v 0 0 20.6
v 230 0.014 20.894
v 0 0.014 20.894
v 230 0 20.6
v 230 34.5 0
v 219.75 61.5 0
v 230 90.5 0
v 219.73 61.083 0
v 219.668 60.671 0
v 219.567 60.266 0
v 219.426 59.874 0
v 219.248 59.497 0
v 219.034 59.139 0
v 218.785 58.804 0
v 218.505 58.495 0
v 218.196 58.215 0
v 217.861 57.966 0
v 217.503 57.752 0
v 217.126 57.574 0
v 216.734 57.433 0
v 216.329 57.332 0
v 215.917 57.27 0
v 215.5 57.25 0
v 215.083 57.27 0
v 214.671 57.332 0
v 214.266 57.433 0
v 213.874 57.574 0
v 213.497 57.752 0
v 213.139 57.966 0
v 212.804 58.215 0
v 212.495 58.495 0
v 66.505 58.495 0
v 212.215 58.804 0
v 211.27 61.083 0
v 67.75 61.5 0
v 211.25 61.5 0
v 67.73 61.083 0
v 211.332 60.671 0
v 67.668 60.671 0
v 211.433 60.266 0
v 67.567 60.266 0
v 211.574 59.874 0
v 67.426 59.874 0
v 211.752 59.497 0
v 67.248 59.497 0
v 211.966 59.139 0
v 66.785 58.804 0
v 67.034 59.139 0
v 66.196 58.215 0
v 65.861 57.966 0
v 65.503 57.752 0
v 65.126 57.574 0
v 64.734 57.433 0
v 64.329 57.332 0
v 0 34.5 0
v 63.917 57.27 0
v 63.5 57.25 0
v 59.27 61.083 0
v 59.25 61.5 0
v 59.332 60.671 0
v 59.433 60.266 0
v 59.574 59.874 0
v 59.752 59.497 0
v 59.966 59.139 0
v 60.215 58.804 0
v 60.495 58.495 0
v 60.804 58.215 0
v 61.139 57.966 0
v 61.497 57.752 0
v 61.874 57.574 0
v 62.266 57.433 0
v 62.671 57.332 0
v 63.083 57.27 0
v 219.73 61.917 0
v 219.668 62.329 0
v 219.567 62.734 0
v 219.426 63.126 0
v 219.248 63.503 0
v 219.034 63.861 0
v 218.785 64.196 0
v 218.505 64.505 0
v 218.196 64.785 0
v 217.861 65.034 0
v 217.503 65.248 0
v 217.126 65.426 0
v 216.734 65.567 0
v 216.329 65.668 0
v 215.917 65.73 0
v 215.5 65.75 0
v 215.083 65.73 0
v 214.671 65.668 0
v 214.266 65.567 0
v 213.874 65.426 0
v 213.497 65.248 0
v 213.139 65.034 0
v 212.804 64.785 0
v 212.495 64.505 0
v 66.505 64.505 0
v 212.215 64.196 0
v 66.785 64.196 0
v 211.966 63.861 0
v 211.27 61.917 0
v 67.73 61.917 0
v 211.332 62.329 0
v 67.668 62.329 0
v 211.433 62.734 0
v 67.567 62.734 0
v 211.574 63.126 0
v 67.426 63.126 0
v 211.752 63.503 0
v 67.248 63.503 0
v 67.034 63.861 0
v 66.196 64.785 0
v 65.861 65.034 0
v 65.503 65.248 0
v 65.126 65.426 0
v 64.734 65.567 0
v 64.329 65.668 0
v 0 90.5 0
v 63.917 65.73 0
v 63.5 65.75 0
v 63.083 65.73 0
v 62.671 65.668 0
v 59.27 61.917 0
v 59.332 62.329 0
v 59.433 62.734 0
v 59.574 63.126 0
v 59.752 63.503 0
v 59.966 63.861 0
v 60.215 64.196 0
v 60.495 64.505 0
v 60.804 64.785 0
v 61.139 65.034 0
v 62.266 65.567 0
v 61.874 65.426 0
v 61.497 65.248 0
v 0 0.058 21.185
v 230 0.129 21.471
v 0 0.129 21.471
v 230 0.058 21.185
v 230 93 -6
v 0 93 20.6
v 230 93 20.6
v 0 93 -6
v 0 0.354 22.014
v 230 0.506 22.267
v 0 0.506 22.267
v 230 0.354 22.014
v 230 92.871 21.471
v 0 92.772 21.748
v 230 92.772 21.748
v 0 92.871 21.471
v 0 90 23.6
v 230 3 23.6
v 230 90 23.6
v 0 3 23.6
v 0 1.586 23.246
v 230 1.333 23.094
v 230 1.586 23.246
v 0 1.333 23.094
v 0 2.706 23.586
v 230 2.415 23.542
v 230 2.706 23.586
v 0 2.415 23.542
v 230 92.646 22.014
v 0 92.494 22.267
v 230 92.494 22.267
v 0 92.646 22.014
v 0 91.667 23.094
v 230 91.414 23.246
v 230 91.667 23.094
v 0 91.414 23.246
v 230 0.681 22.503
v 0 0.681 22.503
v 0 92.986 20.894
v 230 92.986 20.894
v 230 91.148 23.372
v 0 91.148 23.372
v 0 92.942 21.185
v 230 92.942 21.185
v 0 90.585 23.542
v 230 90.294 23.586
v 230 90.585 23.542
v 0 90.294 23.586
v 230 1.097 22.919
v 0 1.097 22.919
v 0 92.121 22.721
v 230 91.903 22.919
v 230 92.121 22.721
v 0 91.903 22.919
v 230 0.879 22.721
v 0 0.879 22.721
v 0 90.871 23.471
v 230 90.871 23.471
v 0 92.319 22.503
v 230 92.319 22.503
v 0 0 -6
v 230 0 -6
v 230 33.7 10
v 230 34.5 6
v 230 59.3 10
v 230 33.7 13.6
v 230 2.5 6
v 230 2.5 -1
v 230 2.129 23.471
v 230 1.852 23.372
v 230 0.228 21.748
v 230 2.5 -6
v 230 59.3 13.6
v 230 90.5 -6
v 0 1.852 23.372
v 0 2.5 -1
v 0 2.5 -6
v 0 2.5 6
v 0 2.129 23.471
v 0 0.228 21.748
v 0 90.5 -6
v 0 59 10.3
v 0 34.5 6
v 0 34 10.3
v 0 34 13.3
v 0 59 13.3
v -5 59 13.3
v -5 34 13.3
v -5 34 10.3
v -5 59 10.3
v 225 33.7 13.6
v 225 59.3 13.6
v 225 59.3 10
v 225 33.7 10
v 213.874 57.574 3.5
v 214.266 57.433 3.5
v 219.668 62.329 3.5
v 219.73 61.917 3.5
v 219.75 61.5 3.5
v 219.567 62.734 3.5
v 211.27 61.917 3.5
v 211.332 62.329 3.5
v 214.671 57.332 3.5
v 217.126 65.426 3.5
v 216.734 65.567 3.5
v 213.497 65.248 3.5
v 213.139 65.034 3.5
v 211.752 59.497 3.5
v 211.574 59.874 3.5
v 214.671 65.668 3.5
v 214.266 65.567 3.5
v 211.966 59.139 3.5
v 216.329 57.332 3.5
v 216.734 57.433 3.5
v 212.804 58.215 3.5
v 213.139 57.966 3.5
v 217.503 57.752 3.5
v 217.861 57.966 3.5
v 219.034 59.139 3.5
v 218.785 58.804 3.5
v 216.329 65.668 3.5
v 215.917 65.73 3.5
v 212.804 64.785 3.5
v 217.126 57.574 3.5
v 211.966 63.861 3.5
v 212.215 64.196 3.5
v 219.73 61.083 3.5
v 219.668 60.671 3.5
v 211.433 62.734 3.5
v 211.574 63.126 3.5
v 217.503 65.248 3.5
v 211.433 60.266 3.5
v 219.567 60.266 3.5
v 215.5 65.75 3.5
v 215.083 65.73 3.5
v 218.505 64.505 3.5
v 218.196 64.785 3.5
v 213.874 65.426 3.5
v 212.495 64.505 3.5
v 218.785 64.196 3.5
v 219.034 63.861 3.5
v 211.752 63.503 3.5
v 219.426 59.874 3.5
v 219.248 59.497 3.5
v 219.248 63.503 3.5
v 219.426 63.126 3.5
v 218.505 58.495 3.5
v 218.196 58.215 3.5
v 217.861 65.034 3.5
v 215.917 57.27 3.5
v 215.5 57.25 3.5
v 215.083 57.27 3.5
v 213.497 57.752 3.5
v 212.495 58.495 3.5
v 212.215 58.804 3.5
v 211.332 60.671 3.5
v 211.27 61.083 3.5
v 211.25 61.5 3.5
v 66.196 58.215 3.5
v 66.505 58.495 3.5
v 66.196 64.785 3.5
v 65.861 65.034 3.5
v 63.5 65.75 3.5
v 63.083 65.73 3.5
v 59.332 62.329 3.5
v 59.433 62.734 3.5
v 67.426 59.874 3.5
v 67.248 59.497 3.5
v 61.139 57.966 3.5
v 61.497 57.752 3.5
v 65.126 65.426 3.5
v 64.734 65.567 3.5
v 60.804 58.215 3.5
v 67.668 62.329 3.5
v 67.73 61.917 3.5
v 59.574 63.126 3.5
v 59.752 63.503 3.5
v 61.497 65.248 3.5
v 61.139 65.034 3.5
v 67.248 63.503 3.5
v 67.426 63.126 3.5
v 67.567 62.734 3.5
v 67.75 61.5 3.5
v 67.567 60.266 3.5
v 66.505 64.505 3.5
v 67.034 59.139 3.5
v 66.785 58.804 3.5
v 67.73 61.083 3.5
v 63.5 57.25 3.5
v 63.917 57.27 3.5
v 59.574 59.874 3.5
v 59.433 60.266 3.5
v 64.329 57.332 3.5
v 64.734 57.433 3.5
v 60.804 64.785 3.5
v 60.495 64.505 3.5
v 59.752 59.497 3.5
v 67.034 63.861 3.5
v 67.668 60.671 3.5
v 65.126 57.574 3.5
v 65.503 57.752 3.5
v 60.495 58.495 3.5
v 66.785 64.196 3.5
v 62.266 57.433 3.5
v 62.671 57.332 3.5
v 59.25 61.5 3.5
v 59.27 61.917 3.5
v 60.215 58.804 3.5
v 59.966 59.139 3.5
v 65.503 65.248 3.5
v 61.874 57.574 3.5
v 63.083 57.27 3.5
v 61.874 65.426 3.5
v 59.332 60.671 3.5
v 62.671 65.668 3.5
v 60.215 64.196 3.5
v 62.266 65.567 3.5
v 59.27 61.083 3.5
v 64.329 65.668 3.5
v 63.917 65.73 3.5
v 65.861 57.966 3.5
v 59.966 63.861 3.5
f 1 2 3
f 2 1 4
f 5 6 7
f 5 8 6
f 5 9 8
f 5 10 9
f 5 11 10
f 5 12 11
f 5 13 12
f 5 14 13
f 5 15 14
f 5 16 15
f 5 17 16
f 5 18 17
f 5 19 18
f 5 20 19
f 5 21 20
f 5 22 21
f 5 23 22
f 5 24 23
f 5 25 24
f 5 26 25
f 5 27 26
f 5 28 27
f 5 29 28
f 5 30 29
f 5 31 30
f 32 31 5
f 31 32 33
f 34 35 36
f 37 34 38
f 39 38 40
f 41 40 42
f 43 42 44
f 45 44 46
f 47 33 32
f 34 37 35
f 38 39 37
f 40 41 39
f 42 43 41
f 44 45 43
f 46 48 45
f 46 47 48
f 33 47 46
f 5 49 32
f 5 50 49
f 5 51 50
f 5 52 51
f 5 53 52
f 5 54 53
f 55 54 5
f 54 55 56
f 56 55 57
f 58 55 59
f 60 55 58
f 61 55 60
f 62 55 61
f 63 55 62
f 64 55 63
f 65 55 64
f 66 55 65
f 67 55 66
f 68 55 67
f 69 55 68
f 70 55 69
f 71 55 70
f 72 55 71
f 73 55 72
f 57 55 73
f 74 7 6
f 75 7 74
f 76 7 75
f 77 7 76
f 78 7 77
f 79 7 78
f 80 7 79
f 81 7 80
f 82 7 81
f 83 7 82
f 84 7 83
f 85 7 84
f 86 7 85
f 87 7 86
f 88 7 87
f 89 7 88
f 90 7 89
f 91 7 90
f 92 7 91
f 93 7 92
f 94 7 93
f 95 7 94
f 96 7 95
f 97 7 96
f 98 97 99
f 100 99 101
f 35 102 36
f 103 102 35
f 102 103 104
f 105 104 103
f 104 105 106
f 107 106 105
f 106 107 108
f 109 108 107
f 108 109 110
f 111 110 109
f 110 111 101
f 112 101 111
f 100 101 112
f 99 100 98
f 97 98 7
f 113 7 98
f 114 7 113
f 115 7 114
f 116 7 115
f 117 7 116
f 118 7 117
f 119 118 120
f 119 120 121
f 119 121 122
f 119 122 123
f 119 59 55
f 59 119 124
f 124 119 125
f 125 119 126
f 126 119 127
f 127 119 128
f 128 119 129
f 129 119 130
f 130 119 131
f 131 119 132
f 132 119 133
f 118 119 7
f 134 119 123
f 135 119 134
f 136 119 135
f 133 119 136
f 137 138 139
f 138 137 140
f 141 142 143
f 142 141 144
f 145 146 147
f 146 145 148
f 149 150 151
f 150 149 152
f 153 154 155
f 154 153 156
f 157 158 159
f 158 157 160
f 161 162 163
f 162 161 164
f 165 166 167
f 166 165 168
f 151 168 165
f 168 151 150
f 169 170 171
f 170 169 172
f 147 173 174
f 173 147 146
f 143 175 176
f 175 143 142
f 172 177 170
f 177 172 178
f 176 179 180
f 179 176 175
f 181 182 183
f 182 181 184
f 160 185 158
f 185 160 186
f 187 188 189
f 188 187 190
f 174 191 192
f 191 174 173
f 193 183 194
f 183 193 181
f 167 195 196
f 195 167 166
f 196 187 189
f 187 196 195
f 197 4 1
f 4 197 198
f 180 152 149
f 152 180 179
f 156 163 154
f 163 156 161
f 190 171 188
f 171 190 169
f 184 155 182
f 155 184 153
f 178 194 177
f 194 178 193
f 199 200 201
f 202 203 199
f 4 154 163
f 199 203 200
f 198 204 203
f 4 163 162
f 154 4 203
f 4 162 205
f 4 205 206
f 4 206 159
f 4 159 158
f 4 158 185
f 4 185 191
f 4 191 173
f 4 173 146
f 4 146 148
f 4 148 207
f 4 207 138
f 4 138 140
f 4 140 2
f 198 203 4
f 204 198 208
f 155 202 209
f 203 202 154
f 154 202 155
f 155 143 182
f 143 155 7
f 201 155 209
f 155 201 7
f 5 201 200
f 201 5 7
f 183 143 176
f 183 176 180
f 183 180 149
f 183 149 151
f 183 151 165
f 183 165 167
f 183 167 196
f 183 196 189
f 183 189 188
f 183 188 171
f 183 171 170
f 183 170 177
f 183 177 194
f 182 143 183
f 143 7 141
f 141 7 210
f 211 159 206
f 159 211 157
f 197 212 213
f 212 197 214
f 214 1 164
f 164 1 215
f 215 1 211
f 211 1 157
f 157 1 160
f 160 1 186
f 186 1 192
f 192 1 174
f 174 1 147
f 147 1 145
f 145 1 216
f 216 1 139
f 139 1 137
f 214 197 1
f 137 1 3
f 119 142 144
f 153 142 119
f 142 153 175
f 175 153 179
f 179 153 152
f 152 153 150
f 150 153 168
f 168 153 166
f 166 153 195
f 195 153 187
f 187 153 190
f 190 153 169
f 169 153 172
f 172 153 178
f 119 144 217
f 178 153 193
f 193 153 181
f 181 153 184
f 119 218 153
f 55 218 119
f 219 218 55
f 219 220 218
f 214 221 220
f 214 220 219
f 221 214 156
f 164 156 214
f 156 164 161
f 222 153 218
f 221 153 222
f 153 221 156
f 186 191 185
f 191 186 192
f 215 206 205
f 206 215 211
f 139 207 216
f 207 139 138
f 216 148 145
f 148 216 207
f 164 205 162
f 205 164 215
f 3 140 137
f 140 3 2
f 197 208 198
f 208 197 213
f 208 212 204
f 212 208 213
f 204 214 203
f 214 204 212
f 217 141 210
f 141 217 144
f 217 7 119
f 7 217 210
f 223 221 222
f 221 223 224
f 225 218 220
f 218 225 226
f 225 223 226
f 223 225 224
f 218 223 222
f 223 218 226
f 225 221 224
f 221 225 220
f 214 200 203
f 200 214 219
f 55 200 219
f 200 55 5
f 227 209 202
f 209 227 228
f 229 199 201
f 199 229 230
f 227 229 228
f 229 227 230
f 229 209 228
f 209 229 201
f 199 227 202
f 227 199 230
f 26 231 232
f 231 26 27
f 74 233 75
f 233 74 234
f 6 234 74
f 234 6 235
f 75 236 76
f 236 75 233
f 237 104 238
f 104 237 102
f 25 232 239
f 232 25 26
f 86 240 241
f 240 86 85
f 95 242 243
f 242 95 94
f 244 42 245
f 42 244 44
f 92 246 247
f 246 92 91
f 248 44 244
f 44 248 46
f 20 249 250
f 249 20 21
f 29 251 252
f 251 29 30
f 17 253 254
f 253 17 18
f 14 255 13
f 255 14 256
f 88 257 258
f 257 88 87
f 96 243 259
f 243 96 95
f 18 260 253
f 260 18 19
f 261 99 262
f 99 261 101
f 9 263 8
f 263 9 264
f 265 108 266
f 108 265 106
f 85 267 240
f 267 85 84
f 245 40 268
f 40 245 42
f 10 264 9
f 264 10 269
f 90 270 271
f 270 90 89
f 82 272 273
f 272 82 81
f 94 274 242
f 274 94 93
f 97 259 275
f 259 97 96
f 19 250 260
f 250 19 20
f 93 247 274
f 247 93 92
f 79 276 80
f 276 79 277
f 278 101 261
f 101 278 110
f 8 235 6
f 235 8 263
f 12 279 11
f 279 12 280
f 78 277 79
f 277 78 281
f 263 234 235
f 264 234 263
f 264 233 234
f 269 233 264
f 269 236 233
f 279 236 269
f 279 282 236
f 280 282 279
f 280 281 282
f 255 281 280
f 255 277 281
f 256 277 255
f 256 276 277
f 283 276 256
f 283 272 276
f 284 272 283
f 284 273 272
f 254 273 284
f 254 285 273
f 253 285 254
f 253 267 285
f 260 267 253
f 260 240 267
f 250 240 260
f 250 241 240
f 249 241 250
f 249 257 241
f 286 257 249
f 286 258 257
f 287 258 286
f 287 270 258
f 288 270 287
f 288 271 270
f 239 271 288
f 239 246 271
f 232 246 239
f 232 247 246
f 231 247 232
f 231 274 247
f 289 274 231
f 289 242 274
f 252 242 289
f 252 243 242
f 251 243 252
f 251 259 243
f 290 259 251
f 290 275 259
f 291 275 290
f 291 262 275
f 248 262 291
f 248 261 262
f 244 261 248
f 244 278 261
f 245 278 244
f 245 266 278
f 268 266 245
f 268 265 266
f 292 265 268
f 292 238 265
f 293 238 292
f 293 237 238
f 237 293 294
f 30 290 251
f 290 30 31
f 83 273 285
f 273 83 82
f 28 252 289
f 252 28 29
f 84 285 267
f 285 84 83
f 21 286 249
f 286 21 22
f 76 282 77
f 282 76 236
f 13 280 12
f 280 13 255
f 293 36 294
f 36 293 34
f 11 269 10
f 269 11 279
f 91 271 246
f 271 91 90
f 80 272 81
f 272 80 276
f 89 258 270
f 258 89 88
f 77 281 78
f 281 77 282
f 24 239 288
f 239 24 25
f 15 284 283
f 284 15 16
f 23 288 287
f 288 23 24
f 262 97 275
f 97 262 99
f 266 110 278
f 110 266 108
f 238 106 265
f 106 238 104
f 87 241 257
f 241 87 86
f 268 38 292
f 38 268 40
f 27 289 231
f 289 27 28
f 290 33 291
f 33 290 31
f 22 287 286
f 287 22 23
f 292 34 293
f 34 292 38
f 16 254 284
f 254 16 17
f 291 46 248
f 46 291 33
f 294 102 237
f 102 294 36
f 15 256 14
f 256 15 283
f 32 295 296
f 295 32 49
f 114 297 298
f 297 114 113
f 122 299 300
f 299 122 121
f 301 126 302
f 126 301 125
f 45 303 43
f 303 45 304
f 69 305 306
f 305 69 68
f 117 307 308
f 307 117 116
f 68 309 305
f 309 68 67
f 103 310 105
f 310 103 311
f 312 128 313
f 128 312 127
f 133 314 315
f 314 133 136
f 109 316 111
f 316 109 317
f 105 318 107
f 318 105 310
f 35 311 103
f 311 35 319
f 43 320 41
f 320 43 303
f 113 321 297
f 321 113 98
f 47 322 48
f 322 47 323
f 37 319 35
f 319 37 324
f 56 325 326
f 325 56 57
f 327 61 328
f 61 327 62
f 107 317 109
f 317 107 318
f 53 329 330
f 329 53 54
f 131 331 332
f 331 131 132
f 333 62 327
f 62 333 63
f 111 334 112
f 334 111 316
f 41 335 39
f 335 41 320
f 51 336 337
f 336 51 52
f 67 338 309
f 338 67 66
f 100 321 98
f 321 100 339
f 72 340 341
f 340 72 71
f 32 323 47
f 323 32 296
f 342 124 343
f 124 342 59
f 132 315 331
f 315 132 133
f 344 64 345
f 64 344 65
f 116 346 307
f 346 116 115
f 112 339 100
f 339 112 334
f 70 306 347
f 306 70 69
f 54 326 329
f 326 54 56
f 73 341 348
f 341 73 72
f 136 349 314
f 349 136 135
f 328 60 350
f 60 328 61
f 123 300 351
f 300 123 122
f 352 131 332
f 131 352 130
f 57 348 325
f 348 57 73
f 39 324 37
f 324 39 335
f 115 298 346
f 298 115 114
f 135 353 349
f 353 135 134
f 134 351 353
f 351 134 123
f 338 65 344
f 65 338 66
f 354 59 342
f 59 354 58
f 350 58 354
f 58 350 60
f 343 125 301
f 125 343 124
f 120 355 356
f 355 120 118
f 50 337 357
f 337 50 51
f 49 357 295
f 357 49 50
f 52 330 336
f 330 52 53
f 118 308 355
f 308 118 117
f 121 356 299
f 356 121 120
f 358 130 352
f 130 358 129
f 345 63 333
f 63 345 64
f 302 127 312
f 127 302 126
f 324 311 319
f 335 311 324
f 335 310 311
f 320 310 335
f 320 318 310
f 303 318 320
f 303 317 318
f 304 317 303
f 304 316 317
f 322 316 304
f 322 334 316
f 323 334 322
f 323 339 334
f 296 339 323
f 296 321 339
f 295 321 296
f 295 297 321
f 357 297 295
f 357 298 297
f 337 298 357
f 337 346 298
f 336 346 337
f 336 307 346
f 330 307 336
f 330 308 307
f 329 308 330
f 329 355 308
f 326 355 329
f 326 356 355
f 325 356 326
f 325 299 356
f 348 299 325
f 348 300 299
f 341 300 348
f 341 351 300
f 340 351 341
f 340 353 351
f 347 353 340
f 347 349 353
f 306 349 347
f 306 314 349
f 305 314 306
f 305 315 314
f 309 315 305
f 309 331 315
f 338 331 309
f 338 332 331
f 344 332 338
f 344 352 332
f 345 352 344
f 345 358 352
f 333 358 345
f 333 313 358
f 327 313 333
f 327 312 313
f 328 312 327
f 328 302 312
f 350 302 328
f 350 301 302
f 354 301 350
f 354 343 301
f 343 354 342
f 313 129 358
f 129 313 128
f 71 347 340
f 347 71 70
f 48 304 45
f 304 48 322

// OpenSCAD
// Abdeckung R730 — Segment 2 (Mitte) v3
// Sattel-Profil: beide Seiten 6mm heruntergezogen
// Y=0-Seite: Rack-Ear Absatz 31×6mm
// Y=88-Seite: Gegenrand 2.5mm × 6mm
// ——————————————————————————————————————————

$fn = 64;

laenge  = 230;
breite  = 93;    // 88mm Innenmaß + 2× 2.5mm Gegenrand
hoehe   = 23.6;
r       = 3;      // Rundungsradius Oberkanten

// Absatz (Rack-Ear)
absatz_y = 31;
absatz_z = 6;

// Gegenrand
rand_staerke = 2.5;
rand_tiefe   = 6;

// Feder
nf_breite  = 25;
nf_hoehe   = 3;
nf_tiefe   = 5;
nf_y       = (breite - nf_breite) / 2;
nf_z       = (hoehe  - nf_hoehe)  / 2;

// Nut
nut_breite = nf_breite + 0.6;
nut_hoehe  = nf_hoehe  + 0.6;
nut_tiefe  = nf_tiefe  + 1;
nut_y      = (breite - nut_breite) / 2;
nut_z      = (hoehe  - nut_hoehe)  / 2;

module grundkoerper() {
    hull() {
        // Bodenfläche — eckig (Druckqualität)
        cube([laenge, breite, 0.01]);

        // Oberkante Y=0
        translate([0, r, hoehe - r])
            rotate([0, 90, 0])
            cylinder(r=r, h=laenge);

        // Oberkante Y=breite
        translate([0, breite - r, hoehe - r])
            rotate([0, 90, 0])
            cylinder(r=r, h=laenge);
    }
}

difference() {
    union() {
        grundkoerper();

        // ——— Gegenrand Y=0-Seite ———
        translate([0, 0, -rand_tiefe])
            cube([laenge, rand_staerke, rand_tiefe + 0.01]);

        // ——— Gegenrand Y=breite-Seite ———
        translate([0, breite - rand_staerke, -rand_tiefe])
            cube([laenge, rand_staerke, rand_tiefe + 0.01]);

        // ——— Feder vorne (X=0) → ragt in -X, Richtung Seg1 ———
        translate([-nf_tiefe, nf_y, nf_z])
            cube([nf_tiefe, nf_breite, nf_hoehe]);
    }

    // ——— Absatz: Rack-Ear (Y=0-Seite) ———
    // Beginnt bei Y=rand_staerke — hängende Wand (Y=0..2.5) NICHT berührt
    // Ghost Wall strukturell ausgeschlossen
    translate([-1, rand_staerke, -1])
        cube([laenge+2, absatz_y+1, absatz_z+1]);

    // ——— Nut hinten (X=230) → nimmt Feder von Seg3 auf ———
    translate([laenge-nf_tiefe, nut_y, nut_z])
        cube([nut_tiefe, nut_breite, nut_hoehe]);

    // ——— Shoulder Screw Vertiefung Knopf 2 ———
    // 244.5mm ab Vorderkante → 14.5mm in Seg2 → X = 230-14.5 = 215.5mm
    translate([215.5, 93-31.5, -1])
        cylinder(r=4.25, h=3.5+1);

    // ——— Shoulder Screw Vertiefung Knopf 3 ———
    // 396.5mm ab Vorderkante → 166.5mm in Seg2 → X = 230-166.5 = 63.5mm
    translate([63.5, 93-31.5, -1])
        cylinder(r=4.25, h=3.5+1);
}

echo("Segment 2 — Mitte v3");
echo("Außenbreite:", breite, "mm — Innenmaß: 88mm — je 2.5mm Gegenrand");
echo("Absatz Rack-Ear beginnt bei Y=", rand_staerke, "— kein Ghost Wall");
